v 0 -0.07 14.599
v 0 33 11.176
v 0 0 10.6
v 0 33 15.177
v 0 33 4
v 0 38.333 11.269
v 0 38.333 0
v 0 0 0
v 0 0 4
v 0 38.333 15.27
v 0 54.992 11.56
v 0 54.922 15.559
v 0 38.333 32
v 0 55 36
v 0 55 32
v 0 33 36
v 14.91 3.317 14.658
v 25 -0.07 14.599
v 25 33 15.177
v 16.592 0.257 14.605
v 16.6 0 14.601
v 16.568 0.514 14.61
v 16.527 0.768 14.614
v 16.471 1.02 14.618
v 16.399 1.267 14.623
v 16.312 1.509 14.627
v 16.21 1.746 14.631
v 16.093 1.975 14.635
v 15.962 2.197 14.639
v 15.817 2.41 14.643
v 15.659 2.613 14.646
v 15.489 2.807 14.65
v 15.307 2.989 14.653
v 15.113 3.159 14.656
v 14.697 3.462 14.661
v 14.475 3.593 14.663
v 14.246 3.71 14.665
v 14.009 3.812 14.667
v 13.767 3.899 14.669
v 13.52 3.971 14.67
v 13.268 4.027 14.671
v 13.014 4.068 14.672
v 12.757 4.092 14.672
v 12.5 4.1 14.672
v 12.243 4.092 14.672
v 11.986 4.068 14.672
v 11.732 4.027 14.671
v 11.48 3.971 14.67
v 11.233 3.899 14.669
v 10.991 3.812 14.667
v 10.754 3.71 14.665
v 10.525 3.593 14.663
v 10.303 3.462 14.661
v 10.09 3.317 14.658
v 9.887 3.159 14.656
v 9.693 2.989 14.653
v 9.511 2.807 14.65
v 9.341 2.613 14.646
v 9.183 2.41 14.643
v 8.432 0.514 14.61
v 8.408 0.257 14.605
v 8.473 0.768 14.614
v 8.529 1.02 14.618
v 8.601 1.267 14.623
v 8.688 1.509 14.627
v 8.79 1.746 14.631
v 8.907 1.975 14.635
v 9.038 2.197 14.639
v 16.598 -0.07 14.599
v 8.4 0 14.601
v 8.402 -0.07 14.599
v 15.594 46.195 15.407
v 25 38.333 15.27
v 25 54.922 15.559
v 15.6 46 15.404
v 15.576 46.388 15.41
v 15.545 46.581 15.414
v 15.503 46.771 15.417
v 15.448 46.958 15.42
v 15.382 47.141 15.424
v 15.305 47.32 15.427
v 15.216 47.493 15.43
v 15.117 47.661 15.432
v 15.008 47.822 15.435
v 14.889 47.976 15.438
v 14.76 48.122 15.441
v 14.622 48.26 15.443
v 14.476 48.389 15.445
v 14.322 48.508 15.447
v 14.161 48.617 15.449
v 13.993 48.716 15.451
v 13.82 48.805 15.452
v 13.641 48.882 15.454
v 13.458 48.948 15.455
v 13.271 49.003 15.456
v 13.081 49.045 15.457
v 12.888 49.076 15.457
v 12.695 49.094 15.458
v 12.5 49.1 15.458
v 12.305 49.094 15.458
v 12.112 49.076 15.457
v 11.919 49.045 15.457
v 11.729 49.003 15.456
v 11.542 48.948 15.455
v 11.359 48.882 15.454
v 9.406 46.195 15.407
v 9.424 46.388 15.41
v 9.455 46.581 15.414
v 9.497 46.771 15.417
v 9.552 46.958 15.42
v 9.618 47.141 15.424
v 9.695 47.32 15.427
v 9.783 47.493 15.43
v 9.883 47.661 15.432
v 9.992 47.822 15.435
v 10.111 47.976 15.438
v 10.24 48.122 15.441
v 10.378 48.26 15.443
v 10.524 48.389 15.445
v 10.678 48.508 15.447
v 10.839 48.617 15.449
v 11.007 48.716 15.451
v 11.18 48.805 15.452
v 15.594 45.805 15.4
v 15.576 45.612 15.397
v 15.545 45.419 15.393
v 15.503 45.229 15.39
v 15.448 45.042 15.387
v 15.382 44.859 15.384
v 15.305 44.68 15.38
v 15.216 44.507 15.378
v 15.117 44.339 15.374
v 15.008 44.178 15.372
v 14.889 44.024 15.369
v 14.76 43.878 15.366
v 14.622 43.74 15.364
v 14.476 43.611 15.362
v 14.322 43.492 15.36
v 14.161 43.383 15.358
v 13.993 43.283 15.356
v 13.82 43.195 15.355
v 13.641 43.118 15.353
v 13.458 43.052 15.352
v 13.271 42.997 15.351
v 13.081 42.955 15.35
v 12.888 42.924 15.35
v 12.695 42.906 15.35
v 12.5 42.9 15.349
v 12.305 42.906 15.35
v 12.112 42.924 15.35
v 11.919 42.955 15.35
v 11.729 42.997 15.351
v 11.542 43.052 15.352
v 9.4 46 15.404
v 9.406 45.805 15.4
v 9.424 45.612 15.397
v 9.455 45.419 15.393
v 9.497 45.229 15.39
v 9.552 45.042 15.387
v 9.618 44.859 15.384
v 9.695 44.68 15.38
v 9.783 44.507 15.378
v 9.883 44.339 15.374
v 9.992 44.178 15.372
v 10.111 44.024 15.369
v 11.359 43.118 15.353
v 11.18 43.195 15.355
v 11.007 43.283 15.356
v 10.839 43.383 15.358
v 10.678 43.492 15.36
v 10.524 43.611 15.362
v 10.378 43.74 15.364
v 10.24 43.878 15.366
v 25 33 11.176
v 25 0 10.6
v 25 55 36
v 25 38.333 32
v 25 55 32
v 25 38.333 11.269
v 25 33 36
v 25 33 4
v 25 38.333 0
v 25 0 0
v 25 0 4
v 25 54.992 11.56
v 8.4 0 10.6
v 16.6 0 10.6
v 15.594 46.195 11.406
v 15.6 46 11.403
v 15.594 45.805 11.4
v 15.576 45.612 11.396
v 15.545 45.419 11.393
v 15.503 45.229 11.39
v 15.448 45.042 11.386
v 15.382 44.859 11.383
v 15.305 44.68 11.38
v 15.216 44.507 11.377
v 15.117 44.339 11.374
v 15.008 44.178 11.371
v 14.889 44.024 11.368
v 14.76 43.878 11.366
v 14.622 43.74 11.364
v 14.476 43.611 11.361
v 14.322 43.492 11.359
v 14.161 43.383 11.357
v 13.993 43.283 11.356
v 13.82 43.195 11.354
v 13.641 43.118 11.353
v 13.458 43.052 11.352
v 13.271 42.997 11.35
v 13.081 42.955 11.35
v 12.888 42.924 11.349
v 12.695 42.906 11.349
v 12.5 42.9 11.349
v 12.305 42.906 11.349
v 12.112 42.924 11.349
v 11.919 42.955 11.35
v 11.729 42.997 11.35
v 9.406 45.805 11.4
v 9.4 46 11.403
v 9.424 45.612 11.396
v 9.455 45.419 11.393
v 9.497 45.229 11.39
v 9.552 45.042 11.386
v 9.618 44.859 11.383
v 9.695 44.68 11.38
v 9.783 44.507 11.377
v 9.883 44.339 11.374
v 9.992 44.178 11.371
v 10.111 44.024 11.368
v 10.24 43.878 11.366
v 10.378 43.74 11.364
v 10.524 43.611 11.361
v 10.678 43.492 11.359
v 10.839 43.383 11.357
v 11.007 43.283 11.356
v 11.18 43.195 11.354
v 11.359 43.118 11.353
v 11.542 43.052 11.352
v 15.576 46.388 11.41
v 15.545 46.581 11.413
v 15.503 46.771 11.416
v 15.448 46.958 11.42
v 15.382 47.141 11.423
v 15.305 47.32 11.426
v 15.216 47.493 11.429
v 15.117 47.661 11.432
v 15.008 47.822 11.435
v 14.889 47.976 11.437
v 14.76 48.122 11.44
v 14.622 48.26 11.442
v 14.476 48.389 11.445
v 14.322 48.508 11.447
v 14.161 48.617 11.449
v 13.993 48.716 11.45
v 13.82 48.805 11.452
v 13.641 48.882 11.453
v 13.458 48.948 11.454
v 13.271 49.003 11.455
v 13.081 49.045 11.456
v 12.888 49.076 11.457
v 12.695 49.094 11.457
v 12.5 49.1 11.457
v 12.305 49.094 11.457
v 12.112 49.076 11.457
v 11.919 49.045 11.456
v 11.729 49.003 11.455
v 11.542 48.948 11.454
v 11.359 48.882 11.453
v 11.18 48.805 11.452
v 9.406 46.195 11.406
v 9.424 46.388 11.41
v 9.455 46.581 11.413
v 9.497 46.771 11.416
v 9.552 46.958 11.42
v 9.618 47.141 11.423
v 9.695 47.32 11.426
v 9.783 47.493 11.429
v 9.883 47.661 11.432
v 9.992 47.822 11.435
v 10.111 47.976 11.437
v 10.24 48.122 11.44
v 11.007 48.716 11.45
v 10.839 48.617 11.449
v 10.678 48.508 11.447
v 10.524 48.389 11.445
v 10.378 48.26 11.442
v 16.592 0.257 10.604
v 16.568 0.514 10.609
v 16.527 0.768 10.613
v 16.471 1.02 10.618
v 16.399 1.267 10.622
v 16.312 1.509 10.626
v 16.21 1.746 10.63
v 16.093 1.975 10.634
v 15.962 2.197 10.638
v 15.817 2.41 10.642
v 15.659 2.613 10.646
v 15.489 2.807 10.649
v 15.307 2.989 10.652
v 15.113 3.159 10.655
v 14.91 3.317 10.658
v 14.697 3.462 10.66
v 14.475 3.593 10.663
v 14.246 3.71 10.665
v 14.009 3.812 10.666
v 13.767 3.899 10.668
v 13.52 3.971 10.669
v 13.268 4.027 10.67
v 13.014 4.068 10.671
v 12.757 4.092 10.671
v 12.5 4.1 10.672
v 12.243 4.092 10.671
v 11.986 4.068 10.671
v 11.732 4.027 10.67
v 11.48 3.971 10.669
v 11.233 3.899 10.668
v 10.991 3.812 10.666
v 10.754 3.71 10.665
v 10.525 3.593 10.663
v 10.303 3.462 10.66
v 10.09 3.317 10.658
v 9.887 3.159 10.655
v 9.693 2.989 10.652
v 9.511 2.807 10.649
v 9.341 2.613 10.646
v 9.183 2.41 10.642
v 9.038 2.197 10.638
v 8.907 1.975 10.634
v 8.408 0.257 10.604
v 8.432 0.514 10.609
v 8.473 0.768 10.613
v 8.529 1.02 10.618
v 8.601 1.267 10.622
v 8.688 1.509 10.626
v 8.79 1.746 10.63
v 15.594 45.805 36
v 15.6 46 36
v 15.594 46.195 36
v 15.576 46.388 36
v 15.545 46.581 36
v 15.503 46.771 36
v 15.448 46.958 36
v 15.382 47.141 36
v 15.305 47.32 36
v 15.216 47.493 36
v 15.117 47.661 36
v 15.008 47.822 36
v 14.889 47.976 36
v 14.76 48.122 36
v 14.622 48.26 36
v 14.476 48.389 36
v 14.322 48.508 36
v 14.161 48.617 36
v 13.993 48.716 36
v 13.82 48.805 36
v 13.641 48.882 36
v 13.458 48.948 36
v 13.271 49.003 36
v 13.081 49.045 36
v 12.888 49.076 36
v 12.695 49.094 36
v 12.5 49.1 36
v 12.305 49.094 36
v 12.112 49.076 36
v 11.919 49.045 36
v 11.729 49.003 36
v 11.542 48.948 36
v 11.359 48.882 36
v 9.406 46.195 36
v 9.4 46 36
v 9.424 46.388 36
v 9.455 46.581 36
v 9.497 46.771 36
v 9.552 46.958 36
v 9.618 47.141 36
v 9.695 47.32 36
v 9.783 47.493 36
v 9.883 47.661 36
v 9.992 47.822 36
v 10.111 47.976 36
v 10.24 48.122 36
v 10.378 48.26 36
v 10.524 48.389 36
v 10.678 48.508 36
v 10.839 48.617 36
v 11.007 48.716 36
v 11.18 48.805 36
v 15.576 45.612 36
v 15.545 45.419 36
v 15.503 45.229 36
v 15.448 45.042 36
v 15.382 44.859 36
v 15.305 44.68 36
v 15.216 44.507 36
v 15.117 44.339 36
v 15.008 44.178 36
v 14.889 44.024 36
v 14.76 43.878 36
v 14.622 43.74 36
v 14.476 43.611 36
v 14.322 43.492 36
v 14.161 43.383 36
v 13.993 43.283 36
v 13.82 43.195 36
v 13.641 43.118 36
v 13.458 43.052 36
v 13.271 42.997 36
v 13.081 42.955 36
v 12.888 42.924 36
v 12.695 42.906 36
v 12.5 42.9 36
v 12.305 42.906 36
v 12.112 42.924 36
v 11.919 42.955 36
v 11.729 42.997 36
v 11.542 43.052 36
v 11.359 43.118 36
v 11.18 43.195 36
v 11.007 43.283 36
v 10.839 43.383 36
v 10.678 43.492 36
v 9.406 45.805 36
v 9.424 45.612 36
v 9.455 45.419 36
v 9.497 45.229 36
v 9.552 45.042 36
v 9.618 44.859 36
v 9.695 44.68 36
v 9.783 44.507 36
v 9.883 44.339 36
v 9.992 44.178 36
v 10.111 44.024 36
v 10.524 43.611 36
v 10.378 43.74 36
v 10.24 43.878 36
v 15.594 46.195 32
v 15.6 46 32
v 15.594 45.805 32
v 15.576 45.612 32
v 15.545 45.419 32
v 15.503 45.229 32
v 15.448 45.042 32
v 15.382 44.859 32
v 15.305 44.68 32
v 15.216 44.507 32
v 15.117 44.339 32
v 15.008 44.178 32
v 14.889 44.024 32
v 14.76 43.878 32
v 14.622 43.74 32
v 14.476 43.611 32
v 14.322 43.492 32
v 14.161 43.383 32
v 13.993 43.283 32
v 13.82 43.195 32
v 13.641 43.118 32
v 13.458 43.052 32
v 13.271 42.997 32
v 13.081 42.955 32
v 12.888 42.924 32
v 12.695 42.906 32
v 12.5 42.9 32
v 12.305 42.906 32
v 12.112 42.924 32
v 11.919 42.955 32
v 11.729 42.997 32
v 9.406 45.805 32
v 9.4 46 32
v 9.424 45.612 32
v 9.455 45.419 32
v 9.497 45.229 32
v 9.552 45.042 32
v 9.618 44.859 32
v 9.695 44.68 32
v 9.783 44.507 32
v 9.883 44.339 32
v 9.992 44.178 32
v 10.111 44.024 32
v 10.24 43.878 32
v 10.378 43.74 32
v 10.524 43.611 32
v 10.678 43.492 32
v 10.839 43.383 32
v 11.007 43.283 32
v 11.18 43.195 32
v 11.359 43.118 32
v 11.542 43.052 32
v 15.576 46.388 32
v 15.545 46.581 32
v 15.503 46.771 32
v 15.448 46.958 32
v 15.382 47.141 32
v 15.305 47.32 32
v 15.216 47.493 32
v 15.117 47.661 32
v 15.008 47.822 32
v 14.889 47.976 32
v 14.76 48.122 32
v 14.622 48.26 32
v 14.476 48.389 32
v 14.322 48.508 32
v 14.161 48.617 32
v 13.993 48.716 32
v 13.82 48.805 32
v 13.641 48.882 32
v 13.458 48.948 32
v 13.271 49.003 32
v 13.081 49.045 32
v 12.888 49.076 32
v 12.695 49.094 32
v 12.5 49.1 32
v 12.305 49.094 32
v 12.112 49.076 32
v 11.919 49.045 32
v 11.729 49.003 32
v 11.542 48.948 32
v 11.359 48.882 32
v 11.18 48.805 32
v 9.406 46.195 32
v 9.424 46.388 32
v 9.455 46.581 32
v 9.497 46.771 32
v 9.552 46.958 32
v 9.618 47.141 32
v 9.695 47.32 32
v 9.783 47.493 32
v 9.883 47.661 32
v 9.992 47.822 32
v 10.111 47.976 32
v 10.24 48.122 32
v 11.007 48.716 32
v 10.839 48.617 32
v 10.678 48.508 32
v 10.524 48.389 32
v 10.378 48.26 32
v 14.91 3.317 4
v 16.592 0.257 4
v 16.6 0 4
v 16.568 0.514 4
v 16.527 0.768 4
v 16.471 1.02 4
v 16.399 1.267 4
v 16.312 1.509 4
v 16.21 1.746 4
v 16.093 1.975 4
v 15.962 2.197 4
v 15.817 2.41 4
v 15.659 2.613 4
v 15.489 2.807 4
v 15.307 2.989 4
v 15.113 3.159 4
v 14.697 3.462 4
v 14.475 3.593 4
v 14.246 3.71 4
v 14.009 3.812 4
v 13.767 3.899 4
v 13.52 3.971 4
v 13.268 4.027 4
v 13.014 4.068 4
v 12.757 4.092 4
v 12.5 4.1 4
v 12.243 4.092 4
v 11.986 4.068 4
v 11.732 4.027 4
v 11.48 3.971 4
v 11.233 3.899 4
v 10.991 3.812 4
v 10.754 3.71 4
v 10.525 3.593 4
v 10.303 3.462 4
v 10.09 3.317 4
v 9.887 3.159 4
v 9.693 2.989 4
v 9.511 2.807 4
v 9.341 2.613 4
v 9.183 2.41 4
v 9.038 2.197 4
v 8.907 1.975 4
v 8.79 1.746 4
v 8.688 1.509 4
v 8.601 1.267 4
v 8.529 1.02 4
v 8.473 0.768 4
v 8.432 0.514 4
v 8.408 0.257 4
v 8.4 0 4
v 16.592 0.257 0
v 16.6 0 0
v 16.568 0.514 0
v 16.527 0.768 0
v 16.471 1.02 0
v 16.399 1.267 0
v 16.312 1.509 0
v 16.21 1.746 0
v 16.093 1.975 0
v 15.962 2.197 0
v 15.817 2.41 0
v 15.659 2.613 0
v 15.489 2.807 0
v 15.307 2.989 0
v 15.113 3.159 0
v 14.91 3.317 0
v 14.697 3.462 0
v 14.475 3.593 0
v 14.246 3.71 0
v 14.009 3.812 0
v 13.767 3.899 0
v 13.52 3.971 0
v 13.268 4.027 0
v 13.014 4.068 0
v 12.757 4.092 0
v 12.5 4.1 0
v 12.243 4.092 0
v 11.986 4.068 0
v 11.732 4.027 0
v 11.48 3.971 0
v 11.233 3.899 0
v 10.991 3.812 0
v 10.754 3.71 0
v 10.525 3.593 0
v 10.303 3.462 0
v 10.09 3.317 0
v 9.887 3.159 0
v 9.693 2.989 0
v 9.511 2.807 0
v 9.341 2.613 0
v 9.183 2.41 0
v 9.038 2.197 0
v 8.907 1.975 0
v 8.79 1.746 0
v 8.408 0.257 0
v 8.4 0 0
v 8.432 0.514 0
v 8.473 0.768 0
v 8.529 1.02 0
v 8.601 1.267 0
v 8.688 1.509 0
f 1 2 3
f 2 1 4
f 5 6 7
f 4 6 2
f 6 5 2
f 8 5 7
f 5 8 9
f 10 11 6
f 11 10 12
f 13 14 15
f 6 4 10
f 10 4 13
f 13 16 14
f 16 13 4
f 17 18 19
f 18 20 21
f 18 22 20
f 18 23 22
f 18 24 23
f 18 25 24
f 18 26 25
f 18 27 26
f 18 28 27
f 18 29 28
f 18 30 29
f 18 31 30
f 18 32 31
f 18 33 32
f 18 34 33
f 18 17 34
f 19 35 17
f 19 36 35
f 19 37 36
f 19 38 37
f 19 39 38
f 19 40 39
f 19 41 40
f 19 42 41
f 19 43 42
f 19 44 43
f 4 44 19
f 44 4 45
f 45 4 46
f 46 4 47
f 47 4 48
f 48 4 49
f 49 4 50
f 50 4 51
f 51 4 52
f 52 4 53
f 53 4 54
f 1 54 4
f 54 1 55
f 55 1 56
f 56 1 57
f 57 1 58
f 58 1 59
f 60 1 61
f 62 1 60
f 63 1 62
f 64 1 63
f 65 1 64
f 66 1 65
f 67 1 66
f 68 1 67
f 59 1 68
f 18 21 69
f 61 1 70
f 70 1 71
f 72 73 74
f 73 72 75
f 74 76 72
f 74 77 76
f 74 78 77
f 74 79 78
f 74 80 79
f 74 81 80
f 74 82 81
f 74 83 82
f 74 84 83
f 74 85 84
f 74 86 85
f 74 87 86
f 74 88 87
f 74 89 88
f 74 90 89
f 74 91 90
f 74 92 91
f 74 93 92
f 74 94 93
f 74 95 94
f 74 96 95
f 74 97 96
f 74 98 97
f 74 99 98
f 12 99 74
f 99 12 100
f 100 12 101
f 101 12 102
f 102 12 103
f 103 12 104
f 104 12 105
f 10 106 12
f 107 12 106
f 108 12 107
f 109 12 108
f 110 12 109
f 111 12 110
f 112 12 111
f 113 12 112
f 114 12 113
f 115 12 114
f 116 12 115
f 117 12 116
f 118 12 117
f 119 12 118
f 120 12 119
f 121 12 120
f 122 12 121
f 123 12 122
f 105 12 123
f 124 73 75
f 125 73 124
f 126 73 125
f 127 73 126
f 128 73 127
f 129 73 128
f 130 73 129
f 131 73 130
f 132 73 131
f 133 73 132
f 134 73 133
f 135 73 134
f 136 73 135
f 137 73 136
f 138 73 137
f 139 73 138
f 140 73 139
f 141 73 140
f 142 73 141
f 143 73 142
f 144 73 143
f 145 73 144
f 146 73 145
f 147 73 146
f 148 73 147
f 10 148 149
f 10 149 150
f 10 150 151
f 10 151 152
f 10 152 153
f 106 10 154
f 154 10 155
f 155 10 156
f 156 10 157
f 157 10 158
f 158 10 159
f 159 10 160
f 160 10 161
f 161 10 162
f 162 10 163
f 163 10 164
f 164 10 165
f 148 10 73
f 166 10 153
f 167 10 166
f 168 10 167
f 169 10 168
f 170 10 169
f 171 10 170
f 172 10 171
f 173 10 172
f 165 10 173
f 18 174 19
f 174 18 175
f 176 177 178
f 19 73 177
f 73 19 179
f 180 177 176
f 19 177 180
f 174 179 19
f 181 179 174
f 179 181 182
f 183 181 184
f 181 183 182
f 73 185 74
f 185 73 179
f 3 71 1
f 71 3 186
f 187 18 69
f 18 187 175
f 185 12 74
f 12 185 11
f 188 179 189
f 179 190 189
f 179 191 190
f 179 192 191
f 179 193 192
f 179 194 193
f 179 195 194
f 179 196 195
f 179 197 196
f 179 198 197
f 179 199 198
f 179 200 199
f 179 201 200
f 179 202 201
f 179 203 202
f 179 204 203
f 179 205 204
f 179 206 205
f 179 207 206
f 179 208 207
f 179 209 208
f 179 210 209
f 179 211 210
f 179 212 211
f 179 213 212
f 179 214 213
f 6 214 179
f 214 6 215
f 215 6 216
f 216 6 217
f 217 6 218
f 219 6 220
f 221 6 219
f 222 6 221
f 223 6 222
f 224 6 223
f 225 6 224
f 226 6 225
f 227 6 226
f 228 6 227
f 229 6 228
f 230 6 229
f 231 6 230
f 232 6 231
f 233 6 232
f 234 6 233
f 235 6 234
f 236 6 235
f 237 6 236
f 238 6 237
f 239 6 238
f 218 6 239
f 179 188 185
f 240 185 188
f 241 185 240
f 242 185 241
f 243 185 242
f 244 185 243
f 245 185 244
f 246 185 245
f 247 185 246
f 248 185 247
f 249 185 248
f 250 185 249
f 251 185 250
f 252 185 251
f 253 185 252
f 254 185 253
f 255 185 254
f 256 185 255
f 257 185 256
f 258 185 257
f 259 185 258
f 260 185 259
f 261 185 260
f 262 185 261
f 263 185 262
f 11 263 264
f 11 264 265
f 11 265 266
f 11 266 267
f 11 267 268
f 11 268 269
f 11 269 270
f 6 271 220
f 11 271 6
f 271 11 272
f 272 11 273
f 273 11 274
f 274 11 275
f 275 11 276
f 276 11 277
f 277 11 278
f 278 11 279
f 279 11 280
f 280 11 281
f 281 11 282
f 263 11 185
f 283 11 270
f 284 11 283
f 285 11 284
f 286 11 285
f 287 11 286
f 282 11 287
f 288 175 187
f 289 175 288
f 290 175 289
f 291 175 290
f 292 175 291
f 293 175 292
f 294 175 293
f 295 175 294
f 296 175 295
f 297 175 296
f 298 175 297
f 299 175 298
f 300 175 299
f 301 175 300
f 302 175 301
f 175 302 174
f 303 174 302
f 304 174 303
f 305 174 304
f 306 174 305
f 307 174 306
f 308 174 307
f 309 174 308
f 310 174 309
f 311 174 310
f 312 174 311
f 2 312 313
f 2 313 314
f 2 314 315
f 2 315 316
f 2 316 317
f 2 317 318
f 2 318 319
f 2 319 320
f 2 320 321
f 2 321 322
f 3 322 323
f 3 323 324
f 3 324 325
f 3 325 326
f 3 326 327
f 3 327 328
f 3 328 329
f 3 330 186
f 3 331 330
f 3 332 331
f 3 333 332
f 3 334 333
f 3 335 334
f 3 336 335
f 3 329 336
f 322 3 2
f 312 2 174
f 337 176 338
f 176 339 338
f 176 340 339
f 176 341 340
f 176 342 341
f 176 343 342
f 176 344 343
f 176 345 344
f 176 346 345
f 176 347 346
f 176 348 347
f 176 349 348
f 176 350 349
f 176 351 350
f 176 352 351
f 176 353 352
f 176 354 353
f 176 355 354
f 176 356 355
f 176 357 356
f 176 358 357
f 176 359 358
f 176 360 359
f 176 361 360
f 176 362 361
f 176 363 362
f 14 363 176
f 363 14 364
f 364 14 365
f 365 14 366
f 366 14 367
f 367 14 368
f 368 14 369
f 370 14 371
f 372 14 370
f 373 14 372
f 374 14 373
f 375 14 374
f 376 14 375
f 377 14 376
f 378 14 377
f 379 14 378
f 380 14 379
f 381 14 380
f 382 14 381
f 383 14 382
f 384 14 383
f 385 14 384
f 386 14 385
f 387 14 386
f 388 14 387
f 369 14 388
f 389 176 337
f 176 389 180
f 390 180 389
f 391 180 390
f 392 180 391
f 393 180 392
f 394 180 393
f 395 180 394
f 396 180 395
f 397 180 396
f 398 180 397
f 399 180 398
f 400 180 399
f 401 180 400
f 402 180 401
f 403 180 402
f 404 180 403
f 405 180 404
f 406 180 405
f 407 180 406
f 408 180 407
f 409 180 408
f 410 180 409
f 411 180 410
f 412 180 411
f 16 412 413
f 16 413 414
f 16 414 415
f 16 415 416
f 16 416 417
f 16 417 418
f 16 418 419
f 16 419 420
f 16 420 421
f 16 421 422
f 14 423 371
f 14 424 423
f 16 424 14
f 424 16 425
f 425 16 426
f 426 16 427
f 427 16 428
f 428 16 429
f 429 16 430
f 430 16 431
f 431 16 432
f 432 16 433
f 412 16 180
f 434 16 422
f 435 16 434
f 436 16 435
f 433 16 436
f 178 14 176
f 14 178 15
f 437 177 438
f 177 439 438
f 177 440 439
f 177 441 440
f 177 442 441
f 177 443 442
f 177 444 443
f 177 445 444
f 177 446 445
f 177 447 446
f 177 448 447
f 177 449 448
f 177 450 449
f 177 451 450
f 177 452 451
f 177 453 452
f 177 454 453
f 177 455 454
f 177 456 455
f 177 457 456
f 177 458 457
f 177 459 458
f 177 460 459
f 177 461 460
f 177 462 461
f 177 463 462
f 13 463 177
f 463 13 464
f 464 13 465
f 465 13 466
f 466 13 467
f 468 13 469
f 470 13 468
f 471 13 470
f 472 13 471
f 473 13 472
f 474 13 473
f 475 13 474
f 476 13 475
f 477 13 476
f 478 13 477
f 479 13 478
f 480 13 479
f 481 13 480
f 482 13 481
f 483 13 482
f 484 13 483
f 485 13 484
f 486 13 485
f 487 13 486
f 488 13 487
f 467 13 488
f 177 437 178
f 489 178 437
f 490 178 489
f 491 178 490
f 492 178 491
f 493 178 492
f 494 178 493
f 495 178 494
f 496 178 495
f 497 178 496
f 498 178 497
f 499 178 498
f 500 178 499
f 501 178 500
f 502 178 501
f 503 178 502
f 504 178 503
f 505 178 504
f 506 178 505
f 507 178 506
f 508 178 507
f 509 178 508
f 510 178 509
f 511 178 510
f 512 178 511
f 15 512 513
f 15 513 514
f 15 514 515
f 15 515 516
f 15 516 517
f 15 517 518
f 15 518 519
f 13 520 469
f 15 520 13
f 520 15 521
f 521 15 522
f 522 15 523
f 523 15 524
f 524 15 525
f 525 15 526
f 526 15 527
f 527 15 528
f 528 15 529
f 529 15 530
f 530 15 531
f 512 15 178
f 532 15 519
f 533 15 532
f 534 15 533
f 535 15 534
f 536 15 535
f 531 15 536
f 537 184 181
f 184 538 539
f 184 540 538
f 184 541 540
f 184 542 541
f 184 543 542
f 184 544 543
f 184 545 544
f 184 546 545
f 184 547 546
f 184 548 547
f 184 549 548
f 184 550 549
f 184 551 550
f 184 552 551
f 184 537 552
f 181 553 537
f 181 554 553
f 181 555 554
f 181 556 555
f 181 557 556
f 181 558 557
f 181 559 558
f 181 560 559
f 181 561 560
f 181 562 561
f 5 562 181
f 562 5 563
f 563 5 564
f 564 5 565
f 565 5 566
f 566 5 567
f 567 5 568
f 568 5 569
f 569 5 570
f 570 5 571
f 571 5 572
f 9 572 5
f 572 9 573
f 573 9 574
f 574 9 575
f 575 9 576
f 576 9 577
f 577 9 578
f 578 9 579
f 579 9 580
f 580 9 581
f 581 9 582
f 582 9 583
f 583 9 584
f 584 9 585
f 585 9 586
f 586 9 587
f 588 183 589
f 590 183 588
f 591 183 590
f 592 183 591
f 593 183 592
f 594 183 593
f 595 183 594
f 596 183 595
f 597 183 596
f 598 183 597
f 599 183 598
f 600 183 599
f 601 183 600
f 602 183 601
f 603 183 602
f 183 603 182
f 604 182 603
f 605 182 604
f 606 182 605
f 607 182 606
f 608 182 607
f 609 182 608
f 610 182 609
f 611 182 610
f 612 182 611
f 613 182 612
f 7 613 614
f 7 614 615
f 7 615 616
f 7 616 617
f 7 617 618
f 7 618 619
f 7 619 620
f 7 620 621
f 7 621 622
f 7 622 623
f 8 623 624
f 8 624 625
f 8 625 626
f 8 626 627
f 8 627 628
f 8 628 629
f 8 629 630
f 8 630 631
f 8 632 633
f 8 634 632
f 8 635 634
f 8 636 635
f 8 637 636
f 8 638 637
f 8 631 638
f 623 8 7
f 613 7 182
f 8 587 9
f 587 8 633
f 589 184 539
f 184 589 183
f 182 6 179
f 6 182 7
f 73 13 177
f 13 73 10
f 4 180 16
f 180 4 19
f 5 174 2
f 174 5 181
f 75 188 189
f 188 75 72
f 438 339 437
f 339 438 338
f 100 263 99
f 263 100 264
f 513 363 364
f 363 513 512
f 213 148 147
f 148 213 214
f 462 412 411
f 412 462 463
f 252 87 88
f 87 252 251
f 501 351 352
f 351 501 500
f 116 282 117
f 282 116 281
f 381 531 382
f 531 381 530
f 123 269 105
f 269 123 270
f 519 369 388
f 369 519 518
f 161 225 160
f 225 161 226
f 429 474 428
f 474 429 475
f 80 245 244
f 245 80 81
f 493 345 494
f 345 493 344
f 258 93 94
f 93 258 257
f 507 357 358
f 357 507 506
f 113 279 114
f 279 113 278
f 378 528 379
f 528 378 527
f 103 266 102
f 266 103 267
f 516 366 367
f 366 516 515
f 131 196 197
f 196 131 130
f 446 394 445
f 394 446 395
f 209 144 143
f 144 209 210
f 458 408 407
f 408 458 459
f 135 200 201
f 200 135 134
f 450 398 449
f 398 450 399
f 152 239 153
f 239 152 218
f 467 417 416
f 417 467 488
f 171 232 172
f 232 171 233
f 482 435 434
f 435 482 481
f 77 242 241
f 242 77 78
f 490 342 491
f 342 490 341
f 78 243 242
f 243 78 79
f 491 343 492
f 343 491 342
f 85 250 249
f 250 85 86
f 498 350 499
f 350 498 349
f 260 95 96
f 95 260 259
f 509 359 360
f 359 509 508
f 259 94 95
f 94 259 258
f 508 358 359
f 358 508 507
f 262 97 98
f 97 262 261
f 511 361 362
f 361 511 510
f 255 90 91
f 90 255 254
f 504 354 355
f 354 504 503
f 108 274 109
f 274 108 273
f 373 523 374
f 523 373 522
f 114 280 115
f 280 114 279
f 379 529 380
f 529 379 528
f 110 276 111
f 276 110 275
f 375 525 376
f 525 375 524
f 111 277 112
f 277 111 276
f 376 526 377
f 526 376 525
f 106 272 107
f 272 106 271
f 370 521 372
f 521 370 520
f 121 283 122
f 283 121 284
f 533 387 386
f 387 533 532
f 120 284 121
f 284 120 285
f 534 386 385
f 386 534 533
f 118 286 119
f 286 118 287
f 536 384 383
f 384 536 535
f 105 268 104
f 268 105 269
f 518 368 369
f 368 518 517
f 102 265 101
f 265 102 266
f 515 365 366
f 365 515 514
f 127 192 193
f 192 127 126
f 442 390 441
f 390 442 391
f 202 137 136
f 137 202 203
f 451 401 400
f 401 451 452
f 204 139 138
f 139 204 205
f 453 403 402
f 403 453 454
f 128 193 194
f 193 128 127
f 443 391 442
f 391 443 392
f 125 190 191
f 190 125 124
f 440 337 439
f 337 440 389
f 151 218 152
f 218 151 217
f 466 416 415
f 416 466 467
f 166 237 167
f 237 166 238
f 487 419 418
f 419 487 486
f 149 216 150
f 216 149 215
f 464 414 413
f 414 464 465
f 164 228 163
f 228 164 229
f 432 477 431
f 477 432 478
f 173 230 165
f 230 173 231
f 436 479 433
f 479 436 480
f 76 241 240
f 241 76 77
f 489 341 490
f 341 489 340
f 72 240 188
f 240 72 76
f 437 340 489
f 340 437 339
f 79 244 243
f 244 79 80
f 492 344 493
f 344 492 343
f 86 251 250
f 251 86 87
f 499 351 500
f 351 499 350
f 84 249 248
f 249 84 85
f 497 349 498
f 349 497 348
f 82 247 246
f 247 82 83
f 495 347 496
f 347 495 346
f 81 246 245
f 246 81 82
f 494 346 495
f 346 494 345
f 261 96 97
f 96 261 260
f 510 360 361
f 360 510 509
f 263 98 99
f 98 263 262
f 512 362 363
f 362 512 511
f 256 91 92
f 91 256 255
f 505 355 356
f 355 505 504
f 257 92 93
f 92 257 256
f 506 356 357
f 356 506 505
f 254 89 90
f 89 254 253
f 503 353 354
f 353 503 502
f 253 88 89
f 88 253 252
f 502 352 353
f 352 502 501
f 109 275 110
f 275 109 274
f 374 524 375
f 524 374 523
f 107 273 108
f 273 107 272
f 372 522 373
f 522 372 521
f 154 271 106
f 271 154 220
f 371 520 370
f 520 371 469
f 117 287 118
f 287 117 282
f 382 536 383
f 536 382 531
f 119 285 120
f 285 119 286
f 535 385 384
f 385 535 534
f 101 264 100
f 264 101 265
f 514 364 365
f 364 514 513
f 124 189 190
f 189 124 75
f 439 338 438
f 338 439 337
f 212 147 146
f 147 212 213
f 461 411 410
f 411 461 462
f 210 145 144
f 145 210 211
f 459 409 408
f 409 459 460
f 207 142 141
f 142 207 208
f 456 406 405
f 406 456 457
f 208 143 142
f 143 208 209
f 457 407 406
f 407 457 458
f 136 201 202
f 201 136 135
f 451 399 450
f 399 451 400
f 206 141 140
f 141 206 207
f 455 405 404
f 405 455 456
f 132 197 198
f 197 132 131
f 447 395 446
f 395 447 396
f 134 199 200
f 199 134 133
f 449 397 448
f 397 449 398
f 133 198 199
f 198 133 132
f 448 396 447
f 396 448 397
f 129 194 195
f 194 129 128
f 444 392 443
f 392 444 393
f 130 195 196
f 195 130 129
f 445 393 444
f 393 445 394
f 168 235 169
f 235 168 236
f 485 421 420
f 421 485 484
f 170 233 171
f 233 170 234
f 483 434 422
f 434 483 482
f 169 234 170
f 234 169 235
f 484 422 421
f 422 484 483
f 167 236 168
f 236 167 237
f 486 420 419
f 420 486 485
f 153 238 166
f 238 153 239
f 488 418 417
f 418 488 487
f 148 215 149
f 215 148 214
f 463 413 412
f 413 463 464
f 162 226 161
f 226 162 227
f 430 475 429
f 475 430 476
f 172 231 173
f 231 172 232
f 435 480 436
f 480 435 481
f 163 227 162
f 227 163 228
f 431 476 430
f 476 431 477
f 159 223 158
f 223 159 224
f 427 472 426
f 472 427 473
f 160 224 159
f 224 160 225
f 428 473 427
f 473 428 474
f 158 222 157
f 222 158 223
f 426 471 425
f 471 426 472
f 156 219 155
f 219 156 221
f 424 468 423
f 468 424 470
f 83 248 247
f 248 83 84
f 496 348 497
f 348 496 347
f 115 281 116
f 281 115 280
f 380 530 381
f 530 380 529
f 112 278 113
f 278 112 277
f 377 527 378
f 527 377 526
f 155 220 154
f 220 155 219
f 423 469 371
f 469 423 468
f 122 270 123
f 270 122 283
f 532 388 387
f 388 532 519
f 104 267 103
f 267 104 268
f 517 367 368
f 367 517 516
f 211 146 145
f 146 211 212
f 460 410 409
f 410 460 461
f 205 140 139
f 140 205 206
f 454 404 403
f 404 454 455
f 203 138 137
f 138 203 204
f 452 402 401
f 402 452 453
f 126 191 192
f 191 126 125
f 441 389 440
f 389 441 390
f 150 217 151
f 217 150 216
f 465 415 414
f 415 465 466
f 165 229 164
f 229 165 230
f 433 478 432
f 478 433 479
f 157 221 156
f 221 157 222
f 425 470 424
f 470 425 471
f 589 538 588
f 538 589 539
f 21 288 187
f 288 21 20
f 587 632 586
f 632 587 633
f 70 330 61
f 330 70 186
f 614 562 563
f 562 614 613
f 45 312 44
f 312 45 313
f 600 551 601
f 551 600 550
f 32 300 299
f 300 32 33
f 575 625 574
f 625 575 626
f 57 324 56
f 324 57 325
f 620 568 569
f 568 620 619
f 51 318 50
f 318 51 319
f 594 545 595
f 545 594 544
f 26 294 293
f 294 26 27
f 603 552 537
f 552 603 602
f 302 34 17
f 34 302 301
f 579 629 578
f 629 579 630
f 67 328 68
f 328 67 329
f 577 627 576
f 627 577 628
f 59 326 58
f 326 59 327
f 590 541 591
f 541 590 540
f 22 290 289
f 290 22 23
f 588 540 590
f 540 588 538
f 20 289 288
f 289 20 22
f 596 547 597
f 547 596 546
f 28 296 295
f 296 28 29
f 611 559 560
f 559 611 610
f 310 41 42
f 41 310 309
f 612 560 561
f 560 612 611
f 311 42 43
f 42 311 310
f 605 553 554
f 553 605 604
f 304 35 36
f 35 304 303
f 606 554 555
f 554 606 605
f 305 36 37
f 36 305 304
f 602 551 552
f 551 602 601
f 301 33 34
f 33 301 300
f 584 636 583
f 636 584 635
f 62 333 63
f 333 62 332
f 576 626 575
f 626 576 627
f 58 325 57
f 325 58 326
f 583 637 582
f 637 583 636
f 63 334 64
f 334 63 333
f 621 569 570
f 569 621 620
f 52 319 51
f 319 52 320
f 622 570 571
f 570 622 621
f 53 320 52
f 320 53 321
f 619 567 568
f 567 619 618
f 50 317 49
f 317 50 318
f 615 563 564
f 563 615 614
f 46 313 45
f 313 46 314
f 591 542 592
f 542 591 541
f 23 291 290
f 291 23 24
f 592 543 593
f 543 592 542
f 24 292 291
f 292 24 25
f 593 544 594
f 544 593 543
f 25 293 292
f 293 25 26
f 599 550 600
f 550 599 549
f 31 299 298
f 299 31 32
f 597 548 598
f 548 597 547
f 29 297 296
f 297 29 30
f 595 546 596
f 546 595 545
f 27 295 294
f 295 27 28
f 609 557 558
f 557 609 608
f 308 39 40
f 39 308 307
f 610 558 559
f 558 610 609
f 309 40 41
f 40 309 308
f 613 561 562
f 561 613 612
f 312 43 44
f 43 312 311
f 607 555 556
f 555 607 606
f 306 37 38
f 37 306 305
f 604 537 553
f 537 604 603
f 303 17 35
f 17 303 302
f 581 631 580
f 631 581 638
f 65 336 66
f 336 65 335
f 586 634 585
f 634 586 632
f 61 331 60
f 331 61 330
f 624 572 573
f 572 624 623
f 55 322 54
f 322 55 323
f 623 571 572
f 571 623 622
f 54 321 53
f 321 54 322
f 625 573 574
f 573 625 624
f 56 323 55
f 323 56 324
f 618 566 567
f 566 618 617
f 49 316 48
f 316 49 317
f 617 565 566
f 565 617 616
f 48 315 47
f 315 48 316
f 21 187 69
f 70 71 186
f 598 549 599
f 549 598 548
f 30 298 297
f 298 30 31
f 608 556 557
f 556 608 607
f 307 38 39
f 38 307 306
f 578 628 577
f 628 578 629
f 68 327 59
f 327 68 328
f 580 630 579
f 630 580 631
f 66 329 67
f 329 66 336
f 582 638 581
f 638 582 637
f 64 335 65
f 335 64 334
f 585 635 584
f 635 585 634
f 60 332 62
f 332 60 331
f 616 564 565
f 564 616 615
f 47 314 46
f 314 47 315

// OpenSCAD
$fn=100;

thickness=4;
widthMid=7;
wide=25;

//#translate([0,0,4]) cube([10,30,7]);

difference() {
    union() {
        cube([wide,35,thickness]);
        translate([0,0,thickness+widthMid]) {
            translate([0,0,-0.4]) rotate([1,0,0]) cube([wide,55,thickness]);
            translate([0,35,25-thickness])
                cube([wide,20,thickness]);
        }
        translate([0,(70-thickness)/2,0])
            cube([wide,thickness*4/3,25+thickness+widthMid]);
    }
    translate([wide/2,46,0])
        cylinder(d=6.2,h=50);
    translate([wide/2,0,0]) 
        cylinder(d=8.2,h=50);
}
